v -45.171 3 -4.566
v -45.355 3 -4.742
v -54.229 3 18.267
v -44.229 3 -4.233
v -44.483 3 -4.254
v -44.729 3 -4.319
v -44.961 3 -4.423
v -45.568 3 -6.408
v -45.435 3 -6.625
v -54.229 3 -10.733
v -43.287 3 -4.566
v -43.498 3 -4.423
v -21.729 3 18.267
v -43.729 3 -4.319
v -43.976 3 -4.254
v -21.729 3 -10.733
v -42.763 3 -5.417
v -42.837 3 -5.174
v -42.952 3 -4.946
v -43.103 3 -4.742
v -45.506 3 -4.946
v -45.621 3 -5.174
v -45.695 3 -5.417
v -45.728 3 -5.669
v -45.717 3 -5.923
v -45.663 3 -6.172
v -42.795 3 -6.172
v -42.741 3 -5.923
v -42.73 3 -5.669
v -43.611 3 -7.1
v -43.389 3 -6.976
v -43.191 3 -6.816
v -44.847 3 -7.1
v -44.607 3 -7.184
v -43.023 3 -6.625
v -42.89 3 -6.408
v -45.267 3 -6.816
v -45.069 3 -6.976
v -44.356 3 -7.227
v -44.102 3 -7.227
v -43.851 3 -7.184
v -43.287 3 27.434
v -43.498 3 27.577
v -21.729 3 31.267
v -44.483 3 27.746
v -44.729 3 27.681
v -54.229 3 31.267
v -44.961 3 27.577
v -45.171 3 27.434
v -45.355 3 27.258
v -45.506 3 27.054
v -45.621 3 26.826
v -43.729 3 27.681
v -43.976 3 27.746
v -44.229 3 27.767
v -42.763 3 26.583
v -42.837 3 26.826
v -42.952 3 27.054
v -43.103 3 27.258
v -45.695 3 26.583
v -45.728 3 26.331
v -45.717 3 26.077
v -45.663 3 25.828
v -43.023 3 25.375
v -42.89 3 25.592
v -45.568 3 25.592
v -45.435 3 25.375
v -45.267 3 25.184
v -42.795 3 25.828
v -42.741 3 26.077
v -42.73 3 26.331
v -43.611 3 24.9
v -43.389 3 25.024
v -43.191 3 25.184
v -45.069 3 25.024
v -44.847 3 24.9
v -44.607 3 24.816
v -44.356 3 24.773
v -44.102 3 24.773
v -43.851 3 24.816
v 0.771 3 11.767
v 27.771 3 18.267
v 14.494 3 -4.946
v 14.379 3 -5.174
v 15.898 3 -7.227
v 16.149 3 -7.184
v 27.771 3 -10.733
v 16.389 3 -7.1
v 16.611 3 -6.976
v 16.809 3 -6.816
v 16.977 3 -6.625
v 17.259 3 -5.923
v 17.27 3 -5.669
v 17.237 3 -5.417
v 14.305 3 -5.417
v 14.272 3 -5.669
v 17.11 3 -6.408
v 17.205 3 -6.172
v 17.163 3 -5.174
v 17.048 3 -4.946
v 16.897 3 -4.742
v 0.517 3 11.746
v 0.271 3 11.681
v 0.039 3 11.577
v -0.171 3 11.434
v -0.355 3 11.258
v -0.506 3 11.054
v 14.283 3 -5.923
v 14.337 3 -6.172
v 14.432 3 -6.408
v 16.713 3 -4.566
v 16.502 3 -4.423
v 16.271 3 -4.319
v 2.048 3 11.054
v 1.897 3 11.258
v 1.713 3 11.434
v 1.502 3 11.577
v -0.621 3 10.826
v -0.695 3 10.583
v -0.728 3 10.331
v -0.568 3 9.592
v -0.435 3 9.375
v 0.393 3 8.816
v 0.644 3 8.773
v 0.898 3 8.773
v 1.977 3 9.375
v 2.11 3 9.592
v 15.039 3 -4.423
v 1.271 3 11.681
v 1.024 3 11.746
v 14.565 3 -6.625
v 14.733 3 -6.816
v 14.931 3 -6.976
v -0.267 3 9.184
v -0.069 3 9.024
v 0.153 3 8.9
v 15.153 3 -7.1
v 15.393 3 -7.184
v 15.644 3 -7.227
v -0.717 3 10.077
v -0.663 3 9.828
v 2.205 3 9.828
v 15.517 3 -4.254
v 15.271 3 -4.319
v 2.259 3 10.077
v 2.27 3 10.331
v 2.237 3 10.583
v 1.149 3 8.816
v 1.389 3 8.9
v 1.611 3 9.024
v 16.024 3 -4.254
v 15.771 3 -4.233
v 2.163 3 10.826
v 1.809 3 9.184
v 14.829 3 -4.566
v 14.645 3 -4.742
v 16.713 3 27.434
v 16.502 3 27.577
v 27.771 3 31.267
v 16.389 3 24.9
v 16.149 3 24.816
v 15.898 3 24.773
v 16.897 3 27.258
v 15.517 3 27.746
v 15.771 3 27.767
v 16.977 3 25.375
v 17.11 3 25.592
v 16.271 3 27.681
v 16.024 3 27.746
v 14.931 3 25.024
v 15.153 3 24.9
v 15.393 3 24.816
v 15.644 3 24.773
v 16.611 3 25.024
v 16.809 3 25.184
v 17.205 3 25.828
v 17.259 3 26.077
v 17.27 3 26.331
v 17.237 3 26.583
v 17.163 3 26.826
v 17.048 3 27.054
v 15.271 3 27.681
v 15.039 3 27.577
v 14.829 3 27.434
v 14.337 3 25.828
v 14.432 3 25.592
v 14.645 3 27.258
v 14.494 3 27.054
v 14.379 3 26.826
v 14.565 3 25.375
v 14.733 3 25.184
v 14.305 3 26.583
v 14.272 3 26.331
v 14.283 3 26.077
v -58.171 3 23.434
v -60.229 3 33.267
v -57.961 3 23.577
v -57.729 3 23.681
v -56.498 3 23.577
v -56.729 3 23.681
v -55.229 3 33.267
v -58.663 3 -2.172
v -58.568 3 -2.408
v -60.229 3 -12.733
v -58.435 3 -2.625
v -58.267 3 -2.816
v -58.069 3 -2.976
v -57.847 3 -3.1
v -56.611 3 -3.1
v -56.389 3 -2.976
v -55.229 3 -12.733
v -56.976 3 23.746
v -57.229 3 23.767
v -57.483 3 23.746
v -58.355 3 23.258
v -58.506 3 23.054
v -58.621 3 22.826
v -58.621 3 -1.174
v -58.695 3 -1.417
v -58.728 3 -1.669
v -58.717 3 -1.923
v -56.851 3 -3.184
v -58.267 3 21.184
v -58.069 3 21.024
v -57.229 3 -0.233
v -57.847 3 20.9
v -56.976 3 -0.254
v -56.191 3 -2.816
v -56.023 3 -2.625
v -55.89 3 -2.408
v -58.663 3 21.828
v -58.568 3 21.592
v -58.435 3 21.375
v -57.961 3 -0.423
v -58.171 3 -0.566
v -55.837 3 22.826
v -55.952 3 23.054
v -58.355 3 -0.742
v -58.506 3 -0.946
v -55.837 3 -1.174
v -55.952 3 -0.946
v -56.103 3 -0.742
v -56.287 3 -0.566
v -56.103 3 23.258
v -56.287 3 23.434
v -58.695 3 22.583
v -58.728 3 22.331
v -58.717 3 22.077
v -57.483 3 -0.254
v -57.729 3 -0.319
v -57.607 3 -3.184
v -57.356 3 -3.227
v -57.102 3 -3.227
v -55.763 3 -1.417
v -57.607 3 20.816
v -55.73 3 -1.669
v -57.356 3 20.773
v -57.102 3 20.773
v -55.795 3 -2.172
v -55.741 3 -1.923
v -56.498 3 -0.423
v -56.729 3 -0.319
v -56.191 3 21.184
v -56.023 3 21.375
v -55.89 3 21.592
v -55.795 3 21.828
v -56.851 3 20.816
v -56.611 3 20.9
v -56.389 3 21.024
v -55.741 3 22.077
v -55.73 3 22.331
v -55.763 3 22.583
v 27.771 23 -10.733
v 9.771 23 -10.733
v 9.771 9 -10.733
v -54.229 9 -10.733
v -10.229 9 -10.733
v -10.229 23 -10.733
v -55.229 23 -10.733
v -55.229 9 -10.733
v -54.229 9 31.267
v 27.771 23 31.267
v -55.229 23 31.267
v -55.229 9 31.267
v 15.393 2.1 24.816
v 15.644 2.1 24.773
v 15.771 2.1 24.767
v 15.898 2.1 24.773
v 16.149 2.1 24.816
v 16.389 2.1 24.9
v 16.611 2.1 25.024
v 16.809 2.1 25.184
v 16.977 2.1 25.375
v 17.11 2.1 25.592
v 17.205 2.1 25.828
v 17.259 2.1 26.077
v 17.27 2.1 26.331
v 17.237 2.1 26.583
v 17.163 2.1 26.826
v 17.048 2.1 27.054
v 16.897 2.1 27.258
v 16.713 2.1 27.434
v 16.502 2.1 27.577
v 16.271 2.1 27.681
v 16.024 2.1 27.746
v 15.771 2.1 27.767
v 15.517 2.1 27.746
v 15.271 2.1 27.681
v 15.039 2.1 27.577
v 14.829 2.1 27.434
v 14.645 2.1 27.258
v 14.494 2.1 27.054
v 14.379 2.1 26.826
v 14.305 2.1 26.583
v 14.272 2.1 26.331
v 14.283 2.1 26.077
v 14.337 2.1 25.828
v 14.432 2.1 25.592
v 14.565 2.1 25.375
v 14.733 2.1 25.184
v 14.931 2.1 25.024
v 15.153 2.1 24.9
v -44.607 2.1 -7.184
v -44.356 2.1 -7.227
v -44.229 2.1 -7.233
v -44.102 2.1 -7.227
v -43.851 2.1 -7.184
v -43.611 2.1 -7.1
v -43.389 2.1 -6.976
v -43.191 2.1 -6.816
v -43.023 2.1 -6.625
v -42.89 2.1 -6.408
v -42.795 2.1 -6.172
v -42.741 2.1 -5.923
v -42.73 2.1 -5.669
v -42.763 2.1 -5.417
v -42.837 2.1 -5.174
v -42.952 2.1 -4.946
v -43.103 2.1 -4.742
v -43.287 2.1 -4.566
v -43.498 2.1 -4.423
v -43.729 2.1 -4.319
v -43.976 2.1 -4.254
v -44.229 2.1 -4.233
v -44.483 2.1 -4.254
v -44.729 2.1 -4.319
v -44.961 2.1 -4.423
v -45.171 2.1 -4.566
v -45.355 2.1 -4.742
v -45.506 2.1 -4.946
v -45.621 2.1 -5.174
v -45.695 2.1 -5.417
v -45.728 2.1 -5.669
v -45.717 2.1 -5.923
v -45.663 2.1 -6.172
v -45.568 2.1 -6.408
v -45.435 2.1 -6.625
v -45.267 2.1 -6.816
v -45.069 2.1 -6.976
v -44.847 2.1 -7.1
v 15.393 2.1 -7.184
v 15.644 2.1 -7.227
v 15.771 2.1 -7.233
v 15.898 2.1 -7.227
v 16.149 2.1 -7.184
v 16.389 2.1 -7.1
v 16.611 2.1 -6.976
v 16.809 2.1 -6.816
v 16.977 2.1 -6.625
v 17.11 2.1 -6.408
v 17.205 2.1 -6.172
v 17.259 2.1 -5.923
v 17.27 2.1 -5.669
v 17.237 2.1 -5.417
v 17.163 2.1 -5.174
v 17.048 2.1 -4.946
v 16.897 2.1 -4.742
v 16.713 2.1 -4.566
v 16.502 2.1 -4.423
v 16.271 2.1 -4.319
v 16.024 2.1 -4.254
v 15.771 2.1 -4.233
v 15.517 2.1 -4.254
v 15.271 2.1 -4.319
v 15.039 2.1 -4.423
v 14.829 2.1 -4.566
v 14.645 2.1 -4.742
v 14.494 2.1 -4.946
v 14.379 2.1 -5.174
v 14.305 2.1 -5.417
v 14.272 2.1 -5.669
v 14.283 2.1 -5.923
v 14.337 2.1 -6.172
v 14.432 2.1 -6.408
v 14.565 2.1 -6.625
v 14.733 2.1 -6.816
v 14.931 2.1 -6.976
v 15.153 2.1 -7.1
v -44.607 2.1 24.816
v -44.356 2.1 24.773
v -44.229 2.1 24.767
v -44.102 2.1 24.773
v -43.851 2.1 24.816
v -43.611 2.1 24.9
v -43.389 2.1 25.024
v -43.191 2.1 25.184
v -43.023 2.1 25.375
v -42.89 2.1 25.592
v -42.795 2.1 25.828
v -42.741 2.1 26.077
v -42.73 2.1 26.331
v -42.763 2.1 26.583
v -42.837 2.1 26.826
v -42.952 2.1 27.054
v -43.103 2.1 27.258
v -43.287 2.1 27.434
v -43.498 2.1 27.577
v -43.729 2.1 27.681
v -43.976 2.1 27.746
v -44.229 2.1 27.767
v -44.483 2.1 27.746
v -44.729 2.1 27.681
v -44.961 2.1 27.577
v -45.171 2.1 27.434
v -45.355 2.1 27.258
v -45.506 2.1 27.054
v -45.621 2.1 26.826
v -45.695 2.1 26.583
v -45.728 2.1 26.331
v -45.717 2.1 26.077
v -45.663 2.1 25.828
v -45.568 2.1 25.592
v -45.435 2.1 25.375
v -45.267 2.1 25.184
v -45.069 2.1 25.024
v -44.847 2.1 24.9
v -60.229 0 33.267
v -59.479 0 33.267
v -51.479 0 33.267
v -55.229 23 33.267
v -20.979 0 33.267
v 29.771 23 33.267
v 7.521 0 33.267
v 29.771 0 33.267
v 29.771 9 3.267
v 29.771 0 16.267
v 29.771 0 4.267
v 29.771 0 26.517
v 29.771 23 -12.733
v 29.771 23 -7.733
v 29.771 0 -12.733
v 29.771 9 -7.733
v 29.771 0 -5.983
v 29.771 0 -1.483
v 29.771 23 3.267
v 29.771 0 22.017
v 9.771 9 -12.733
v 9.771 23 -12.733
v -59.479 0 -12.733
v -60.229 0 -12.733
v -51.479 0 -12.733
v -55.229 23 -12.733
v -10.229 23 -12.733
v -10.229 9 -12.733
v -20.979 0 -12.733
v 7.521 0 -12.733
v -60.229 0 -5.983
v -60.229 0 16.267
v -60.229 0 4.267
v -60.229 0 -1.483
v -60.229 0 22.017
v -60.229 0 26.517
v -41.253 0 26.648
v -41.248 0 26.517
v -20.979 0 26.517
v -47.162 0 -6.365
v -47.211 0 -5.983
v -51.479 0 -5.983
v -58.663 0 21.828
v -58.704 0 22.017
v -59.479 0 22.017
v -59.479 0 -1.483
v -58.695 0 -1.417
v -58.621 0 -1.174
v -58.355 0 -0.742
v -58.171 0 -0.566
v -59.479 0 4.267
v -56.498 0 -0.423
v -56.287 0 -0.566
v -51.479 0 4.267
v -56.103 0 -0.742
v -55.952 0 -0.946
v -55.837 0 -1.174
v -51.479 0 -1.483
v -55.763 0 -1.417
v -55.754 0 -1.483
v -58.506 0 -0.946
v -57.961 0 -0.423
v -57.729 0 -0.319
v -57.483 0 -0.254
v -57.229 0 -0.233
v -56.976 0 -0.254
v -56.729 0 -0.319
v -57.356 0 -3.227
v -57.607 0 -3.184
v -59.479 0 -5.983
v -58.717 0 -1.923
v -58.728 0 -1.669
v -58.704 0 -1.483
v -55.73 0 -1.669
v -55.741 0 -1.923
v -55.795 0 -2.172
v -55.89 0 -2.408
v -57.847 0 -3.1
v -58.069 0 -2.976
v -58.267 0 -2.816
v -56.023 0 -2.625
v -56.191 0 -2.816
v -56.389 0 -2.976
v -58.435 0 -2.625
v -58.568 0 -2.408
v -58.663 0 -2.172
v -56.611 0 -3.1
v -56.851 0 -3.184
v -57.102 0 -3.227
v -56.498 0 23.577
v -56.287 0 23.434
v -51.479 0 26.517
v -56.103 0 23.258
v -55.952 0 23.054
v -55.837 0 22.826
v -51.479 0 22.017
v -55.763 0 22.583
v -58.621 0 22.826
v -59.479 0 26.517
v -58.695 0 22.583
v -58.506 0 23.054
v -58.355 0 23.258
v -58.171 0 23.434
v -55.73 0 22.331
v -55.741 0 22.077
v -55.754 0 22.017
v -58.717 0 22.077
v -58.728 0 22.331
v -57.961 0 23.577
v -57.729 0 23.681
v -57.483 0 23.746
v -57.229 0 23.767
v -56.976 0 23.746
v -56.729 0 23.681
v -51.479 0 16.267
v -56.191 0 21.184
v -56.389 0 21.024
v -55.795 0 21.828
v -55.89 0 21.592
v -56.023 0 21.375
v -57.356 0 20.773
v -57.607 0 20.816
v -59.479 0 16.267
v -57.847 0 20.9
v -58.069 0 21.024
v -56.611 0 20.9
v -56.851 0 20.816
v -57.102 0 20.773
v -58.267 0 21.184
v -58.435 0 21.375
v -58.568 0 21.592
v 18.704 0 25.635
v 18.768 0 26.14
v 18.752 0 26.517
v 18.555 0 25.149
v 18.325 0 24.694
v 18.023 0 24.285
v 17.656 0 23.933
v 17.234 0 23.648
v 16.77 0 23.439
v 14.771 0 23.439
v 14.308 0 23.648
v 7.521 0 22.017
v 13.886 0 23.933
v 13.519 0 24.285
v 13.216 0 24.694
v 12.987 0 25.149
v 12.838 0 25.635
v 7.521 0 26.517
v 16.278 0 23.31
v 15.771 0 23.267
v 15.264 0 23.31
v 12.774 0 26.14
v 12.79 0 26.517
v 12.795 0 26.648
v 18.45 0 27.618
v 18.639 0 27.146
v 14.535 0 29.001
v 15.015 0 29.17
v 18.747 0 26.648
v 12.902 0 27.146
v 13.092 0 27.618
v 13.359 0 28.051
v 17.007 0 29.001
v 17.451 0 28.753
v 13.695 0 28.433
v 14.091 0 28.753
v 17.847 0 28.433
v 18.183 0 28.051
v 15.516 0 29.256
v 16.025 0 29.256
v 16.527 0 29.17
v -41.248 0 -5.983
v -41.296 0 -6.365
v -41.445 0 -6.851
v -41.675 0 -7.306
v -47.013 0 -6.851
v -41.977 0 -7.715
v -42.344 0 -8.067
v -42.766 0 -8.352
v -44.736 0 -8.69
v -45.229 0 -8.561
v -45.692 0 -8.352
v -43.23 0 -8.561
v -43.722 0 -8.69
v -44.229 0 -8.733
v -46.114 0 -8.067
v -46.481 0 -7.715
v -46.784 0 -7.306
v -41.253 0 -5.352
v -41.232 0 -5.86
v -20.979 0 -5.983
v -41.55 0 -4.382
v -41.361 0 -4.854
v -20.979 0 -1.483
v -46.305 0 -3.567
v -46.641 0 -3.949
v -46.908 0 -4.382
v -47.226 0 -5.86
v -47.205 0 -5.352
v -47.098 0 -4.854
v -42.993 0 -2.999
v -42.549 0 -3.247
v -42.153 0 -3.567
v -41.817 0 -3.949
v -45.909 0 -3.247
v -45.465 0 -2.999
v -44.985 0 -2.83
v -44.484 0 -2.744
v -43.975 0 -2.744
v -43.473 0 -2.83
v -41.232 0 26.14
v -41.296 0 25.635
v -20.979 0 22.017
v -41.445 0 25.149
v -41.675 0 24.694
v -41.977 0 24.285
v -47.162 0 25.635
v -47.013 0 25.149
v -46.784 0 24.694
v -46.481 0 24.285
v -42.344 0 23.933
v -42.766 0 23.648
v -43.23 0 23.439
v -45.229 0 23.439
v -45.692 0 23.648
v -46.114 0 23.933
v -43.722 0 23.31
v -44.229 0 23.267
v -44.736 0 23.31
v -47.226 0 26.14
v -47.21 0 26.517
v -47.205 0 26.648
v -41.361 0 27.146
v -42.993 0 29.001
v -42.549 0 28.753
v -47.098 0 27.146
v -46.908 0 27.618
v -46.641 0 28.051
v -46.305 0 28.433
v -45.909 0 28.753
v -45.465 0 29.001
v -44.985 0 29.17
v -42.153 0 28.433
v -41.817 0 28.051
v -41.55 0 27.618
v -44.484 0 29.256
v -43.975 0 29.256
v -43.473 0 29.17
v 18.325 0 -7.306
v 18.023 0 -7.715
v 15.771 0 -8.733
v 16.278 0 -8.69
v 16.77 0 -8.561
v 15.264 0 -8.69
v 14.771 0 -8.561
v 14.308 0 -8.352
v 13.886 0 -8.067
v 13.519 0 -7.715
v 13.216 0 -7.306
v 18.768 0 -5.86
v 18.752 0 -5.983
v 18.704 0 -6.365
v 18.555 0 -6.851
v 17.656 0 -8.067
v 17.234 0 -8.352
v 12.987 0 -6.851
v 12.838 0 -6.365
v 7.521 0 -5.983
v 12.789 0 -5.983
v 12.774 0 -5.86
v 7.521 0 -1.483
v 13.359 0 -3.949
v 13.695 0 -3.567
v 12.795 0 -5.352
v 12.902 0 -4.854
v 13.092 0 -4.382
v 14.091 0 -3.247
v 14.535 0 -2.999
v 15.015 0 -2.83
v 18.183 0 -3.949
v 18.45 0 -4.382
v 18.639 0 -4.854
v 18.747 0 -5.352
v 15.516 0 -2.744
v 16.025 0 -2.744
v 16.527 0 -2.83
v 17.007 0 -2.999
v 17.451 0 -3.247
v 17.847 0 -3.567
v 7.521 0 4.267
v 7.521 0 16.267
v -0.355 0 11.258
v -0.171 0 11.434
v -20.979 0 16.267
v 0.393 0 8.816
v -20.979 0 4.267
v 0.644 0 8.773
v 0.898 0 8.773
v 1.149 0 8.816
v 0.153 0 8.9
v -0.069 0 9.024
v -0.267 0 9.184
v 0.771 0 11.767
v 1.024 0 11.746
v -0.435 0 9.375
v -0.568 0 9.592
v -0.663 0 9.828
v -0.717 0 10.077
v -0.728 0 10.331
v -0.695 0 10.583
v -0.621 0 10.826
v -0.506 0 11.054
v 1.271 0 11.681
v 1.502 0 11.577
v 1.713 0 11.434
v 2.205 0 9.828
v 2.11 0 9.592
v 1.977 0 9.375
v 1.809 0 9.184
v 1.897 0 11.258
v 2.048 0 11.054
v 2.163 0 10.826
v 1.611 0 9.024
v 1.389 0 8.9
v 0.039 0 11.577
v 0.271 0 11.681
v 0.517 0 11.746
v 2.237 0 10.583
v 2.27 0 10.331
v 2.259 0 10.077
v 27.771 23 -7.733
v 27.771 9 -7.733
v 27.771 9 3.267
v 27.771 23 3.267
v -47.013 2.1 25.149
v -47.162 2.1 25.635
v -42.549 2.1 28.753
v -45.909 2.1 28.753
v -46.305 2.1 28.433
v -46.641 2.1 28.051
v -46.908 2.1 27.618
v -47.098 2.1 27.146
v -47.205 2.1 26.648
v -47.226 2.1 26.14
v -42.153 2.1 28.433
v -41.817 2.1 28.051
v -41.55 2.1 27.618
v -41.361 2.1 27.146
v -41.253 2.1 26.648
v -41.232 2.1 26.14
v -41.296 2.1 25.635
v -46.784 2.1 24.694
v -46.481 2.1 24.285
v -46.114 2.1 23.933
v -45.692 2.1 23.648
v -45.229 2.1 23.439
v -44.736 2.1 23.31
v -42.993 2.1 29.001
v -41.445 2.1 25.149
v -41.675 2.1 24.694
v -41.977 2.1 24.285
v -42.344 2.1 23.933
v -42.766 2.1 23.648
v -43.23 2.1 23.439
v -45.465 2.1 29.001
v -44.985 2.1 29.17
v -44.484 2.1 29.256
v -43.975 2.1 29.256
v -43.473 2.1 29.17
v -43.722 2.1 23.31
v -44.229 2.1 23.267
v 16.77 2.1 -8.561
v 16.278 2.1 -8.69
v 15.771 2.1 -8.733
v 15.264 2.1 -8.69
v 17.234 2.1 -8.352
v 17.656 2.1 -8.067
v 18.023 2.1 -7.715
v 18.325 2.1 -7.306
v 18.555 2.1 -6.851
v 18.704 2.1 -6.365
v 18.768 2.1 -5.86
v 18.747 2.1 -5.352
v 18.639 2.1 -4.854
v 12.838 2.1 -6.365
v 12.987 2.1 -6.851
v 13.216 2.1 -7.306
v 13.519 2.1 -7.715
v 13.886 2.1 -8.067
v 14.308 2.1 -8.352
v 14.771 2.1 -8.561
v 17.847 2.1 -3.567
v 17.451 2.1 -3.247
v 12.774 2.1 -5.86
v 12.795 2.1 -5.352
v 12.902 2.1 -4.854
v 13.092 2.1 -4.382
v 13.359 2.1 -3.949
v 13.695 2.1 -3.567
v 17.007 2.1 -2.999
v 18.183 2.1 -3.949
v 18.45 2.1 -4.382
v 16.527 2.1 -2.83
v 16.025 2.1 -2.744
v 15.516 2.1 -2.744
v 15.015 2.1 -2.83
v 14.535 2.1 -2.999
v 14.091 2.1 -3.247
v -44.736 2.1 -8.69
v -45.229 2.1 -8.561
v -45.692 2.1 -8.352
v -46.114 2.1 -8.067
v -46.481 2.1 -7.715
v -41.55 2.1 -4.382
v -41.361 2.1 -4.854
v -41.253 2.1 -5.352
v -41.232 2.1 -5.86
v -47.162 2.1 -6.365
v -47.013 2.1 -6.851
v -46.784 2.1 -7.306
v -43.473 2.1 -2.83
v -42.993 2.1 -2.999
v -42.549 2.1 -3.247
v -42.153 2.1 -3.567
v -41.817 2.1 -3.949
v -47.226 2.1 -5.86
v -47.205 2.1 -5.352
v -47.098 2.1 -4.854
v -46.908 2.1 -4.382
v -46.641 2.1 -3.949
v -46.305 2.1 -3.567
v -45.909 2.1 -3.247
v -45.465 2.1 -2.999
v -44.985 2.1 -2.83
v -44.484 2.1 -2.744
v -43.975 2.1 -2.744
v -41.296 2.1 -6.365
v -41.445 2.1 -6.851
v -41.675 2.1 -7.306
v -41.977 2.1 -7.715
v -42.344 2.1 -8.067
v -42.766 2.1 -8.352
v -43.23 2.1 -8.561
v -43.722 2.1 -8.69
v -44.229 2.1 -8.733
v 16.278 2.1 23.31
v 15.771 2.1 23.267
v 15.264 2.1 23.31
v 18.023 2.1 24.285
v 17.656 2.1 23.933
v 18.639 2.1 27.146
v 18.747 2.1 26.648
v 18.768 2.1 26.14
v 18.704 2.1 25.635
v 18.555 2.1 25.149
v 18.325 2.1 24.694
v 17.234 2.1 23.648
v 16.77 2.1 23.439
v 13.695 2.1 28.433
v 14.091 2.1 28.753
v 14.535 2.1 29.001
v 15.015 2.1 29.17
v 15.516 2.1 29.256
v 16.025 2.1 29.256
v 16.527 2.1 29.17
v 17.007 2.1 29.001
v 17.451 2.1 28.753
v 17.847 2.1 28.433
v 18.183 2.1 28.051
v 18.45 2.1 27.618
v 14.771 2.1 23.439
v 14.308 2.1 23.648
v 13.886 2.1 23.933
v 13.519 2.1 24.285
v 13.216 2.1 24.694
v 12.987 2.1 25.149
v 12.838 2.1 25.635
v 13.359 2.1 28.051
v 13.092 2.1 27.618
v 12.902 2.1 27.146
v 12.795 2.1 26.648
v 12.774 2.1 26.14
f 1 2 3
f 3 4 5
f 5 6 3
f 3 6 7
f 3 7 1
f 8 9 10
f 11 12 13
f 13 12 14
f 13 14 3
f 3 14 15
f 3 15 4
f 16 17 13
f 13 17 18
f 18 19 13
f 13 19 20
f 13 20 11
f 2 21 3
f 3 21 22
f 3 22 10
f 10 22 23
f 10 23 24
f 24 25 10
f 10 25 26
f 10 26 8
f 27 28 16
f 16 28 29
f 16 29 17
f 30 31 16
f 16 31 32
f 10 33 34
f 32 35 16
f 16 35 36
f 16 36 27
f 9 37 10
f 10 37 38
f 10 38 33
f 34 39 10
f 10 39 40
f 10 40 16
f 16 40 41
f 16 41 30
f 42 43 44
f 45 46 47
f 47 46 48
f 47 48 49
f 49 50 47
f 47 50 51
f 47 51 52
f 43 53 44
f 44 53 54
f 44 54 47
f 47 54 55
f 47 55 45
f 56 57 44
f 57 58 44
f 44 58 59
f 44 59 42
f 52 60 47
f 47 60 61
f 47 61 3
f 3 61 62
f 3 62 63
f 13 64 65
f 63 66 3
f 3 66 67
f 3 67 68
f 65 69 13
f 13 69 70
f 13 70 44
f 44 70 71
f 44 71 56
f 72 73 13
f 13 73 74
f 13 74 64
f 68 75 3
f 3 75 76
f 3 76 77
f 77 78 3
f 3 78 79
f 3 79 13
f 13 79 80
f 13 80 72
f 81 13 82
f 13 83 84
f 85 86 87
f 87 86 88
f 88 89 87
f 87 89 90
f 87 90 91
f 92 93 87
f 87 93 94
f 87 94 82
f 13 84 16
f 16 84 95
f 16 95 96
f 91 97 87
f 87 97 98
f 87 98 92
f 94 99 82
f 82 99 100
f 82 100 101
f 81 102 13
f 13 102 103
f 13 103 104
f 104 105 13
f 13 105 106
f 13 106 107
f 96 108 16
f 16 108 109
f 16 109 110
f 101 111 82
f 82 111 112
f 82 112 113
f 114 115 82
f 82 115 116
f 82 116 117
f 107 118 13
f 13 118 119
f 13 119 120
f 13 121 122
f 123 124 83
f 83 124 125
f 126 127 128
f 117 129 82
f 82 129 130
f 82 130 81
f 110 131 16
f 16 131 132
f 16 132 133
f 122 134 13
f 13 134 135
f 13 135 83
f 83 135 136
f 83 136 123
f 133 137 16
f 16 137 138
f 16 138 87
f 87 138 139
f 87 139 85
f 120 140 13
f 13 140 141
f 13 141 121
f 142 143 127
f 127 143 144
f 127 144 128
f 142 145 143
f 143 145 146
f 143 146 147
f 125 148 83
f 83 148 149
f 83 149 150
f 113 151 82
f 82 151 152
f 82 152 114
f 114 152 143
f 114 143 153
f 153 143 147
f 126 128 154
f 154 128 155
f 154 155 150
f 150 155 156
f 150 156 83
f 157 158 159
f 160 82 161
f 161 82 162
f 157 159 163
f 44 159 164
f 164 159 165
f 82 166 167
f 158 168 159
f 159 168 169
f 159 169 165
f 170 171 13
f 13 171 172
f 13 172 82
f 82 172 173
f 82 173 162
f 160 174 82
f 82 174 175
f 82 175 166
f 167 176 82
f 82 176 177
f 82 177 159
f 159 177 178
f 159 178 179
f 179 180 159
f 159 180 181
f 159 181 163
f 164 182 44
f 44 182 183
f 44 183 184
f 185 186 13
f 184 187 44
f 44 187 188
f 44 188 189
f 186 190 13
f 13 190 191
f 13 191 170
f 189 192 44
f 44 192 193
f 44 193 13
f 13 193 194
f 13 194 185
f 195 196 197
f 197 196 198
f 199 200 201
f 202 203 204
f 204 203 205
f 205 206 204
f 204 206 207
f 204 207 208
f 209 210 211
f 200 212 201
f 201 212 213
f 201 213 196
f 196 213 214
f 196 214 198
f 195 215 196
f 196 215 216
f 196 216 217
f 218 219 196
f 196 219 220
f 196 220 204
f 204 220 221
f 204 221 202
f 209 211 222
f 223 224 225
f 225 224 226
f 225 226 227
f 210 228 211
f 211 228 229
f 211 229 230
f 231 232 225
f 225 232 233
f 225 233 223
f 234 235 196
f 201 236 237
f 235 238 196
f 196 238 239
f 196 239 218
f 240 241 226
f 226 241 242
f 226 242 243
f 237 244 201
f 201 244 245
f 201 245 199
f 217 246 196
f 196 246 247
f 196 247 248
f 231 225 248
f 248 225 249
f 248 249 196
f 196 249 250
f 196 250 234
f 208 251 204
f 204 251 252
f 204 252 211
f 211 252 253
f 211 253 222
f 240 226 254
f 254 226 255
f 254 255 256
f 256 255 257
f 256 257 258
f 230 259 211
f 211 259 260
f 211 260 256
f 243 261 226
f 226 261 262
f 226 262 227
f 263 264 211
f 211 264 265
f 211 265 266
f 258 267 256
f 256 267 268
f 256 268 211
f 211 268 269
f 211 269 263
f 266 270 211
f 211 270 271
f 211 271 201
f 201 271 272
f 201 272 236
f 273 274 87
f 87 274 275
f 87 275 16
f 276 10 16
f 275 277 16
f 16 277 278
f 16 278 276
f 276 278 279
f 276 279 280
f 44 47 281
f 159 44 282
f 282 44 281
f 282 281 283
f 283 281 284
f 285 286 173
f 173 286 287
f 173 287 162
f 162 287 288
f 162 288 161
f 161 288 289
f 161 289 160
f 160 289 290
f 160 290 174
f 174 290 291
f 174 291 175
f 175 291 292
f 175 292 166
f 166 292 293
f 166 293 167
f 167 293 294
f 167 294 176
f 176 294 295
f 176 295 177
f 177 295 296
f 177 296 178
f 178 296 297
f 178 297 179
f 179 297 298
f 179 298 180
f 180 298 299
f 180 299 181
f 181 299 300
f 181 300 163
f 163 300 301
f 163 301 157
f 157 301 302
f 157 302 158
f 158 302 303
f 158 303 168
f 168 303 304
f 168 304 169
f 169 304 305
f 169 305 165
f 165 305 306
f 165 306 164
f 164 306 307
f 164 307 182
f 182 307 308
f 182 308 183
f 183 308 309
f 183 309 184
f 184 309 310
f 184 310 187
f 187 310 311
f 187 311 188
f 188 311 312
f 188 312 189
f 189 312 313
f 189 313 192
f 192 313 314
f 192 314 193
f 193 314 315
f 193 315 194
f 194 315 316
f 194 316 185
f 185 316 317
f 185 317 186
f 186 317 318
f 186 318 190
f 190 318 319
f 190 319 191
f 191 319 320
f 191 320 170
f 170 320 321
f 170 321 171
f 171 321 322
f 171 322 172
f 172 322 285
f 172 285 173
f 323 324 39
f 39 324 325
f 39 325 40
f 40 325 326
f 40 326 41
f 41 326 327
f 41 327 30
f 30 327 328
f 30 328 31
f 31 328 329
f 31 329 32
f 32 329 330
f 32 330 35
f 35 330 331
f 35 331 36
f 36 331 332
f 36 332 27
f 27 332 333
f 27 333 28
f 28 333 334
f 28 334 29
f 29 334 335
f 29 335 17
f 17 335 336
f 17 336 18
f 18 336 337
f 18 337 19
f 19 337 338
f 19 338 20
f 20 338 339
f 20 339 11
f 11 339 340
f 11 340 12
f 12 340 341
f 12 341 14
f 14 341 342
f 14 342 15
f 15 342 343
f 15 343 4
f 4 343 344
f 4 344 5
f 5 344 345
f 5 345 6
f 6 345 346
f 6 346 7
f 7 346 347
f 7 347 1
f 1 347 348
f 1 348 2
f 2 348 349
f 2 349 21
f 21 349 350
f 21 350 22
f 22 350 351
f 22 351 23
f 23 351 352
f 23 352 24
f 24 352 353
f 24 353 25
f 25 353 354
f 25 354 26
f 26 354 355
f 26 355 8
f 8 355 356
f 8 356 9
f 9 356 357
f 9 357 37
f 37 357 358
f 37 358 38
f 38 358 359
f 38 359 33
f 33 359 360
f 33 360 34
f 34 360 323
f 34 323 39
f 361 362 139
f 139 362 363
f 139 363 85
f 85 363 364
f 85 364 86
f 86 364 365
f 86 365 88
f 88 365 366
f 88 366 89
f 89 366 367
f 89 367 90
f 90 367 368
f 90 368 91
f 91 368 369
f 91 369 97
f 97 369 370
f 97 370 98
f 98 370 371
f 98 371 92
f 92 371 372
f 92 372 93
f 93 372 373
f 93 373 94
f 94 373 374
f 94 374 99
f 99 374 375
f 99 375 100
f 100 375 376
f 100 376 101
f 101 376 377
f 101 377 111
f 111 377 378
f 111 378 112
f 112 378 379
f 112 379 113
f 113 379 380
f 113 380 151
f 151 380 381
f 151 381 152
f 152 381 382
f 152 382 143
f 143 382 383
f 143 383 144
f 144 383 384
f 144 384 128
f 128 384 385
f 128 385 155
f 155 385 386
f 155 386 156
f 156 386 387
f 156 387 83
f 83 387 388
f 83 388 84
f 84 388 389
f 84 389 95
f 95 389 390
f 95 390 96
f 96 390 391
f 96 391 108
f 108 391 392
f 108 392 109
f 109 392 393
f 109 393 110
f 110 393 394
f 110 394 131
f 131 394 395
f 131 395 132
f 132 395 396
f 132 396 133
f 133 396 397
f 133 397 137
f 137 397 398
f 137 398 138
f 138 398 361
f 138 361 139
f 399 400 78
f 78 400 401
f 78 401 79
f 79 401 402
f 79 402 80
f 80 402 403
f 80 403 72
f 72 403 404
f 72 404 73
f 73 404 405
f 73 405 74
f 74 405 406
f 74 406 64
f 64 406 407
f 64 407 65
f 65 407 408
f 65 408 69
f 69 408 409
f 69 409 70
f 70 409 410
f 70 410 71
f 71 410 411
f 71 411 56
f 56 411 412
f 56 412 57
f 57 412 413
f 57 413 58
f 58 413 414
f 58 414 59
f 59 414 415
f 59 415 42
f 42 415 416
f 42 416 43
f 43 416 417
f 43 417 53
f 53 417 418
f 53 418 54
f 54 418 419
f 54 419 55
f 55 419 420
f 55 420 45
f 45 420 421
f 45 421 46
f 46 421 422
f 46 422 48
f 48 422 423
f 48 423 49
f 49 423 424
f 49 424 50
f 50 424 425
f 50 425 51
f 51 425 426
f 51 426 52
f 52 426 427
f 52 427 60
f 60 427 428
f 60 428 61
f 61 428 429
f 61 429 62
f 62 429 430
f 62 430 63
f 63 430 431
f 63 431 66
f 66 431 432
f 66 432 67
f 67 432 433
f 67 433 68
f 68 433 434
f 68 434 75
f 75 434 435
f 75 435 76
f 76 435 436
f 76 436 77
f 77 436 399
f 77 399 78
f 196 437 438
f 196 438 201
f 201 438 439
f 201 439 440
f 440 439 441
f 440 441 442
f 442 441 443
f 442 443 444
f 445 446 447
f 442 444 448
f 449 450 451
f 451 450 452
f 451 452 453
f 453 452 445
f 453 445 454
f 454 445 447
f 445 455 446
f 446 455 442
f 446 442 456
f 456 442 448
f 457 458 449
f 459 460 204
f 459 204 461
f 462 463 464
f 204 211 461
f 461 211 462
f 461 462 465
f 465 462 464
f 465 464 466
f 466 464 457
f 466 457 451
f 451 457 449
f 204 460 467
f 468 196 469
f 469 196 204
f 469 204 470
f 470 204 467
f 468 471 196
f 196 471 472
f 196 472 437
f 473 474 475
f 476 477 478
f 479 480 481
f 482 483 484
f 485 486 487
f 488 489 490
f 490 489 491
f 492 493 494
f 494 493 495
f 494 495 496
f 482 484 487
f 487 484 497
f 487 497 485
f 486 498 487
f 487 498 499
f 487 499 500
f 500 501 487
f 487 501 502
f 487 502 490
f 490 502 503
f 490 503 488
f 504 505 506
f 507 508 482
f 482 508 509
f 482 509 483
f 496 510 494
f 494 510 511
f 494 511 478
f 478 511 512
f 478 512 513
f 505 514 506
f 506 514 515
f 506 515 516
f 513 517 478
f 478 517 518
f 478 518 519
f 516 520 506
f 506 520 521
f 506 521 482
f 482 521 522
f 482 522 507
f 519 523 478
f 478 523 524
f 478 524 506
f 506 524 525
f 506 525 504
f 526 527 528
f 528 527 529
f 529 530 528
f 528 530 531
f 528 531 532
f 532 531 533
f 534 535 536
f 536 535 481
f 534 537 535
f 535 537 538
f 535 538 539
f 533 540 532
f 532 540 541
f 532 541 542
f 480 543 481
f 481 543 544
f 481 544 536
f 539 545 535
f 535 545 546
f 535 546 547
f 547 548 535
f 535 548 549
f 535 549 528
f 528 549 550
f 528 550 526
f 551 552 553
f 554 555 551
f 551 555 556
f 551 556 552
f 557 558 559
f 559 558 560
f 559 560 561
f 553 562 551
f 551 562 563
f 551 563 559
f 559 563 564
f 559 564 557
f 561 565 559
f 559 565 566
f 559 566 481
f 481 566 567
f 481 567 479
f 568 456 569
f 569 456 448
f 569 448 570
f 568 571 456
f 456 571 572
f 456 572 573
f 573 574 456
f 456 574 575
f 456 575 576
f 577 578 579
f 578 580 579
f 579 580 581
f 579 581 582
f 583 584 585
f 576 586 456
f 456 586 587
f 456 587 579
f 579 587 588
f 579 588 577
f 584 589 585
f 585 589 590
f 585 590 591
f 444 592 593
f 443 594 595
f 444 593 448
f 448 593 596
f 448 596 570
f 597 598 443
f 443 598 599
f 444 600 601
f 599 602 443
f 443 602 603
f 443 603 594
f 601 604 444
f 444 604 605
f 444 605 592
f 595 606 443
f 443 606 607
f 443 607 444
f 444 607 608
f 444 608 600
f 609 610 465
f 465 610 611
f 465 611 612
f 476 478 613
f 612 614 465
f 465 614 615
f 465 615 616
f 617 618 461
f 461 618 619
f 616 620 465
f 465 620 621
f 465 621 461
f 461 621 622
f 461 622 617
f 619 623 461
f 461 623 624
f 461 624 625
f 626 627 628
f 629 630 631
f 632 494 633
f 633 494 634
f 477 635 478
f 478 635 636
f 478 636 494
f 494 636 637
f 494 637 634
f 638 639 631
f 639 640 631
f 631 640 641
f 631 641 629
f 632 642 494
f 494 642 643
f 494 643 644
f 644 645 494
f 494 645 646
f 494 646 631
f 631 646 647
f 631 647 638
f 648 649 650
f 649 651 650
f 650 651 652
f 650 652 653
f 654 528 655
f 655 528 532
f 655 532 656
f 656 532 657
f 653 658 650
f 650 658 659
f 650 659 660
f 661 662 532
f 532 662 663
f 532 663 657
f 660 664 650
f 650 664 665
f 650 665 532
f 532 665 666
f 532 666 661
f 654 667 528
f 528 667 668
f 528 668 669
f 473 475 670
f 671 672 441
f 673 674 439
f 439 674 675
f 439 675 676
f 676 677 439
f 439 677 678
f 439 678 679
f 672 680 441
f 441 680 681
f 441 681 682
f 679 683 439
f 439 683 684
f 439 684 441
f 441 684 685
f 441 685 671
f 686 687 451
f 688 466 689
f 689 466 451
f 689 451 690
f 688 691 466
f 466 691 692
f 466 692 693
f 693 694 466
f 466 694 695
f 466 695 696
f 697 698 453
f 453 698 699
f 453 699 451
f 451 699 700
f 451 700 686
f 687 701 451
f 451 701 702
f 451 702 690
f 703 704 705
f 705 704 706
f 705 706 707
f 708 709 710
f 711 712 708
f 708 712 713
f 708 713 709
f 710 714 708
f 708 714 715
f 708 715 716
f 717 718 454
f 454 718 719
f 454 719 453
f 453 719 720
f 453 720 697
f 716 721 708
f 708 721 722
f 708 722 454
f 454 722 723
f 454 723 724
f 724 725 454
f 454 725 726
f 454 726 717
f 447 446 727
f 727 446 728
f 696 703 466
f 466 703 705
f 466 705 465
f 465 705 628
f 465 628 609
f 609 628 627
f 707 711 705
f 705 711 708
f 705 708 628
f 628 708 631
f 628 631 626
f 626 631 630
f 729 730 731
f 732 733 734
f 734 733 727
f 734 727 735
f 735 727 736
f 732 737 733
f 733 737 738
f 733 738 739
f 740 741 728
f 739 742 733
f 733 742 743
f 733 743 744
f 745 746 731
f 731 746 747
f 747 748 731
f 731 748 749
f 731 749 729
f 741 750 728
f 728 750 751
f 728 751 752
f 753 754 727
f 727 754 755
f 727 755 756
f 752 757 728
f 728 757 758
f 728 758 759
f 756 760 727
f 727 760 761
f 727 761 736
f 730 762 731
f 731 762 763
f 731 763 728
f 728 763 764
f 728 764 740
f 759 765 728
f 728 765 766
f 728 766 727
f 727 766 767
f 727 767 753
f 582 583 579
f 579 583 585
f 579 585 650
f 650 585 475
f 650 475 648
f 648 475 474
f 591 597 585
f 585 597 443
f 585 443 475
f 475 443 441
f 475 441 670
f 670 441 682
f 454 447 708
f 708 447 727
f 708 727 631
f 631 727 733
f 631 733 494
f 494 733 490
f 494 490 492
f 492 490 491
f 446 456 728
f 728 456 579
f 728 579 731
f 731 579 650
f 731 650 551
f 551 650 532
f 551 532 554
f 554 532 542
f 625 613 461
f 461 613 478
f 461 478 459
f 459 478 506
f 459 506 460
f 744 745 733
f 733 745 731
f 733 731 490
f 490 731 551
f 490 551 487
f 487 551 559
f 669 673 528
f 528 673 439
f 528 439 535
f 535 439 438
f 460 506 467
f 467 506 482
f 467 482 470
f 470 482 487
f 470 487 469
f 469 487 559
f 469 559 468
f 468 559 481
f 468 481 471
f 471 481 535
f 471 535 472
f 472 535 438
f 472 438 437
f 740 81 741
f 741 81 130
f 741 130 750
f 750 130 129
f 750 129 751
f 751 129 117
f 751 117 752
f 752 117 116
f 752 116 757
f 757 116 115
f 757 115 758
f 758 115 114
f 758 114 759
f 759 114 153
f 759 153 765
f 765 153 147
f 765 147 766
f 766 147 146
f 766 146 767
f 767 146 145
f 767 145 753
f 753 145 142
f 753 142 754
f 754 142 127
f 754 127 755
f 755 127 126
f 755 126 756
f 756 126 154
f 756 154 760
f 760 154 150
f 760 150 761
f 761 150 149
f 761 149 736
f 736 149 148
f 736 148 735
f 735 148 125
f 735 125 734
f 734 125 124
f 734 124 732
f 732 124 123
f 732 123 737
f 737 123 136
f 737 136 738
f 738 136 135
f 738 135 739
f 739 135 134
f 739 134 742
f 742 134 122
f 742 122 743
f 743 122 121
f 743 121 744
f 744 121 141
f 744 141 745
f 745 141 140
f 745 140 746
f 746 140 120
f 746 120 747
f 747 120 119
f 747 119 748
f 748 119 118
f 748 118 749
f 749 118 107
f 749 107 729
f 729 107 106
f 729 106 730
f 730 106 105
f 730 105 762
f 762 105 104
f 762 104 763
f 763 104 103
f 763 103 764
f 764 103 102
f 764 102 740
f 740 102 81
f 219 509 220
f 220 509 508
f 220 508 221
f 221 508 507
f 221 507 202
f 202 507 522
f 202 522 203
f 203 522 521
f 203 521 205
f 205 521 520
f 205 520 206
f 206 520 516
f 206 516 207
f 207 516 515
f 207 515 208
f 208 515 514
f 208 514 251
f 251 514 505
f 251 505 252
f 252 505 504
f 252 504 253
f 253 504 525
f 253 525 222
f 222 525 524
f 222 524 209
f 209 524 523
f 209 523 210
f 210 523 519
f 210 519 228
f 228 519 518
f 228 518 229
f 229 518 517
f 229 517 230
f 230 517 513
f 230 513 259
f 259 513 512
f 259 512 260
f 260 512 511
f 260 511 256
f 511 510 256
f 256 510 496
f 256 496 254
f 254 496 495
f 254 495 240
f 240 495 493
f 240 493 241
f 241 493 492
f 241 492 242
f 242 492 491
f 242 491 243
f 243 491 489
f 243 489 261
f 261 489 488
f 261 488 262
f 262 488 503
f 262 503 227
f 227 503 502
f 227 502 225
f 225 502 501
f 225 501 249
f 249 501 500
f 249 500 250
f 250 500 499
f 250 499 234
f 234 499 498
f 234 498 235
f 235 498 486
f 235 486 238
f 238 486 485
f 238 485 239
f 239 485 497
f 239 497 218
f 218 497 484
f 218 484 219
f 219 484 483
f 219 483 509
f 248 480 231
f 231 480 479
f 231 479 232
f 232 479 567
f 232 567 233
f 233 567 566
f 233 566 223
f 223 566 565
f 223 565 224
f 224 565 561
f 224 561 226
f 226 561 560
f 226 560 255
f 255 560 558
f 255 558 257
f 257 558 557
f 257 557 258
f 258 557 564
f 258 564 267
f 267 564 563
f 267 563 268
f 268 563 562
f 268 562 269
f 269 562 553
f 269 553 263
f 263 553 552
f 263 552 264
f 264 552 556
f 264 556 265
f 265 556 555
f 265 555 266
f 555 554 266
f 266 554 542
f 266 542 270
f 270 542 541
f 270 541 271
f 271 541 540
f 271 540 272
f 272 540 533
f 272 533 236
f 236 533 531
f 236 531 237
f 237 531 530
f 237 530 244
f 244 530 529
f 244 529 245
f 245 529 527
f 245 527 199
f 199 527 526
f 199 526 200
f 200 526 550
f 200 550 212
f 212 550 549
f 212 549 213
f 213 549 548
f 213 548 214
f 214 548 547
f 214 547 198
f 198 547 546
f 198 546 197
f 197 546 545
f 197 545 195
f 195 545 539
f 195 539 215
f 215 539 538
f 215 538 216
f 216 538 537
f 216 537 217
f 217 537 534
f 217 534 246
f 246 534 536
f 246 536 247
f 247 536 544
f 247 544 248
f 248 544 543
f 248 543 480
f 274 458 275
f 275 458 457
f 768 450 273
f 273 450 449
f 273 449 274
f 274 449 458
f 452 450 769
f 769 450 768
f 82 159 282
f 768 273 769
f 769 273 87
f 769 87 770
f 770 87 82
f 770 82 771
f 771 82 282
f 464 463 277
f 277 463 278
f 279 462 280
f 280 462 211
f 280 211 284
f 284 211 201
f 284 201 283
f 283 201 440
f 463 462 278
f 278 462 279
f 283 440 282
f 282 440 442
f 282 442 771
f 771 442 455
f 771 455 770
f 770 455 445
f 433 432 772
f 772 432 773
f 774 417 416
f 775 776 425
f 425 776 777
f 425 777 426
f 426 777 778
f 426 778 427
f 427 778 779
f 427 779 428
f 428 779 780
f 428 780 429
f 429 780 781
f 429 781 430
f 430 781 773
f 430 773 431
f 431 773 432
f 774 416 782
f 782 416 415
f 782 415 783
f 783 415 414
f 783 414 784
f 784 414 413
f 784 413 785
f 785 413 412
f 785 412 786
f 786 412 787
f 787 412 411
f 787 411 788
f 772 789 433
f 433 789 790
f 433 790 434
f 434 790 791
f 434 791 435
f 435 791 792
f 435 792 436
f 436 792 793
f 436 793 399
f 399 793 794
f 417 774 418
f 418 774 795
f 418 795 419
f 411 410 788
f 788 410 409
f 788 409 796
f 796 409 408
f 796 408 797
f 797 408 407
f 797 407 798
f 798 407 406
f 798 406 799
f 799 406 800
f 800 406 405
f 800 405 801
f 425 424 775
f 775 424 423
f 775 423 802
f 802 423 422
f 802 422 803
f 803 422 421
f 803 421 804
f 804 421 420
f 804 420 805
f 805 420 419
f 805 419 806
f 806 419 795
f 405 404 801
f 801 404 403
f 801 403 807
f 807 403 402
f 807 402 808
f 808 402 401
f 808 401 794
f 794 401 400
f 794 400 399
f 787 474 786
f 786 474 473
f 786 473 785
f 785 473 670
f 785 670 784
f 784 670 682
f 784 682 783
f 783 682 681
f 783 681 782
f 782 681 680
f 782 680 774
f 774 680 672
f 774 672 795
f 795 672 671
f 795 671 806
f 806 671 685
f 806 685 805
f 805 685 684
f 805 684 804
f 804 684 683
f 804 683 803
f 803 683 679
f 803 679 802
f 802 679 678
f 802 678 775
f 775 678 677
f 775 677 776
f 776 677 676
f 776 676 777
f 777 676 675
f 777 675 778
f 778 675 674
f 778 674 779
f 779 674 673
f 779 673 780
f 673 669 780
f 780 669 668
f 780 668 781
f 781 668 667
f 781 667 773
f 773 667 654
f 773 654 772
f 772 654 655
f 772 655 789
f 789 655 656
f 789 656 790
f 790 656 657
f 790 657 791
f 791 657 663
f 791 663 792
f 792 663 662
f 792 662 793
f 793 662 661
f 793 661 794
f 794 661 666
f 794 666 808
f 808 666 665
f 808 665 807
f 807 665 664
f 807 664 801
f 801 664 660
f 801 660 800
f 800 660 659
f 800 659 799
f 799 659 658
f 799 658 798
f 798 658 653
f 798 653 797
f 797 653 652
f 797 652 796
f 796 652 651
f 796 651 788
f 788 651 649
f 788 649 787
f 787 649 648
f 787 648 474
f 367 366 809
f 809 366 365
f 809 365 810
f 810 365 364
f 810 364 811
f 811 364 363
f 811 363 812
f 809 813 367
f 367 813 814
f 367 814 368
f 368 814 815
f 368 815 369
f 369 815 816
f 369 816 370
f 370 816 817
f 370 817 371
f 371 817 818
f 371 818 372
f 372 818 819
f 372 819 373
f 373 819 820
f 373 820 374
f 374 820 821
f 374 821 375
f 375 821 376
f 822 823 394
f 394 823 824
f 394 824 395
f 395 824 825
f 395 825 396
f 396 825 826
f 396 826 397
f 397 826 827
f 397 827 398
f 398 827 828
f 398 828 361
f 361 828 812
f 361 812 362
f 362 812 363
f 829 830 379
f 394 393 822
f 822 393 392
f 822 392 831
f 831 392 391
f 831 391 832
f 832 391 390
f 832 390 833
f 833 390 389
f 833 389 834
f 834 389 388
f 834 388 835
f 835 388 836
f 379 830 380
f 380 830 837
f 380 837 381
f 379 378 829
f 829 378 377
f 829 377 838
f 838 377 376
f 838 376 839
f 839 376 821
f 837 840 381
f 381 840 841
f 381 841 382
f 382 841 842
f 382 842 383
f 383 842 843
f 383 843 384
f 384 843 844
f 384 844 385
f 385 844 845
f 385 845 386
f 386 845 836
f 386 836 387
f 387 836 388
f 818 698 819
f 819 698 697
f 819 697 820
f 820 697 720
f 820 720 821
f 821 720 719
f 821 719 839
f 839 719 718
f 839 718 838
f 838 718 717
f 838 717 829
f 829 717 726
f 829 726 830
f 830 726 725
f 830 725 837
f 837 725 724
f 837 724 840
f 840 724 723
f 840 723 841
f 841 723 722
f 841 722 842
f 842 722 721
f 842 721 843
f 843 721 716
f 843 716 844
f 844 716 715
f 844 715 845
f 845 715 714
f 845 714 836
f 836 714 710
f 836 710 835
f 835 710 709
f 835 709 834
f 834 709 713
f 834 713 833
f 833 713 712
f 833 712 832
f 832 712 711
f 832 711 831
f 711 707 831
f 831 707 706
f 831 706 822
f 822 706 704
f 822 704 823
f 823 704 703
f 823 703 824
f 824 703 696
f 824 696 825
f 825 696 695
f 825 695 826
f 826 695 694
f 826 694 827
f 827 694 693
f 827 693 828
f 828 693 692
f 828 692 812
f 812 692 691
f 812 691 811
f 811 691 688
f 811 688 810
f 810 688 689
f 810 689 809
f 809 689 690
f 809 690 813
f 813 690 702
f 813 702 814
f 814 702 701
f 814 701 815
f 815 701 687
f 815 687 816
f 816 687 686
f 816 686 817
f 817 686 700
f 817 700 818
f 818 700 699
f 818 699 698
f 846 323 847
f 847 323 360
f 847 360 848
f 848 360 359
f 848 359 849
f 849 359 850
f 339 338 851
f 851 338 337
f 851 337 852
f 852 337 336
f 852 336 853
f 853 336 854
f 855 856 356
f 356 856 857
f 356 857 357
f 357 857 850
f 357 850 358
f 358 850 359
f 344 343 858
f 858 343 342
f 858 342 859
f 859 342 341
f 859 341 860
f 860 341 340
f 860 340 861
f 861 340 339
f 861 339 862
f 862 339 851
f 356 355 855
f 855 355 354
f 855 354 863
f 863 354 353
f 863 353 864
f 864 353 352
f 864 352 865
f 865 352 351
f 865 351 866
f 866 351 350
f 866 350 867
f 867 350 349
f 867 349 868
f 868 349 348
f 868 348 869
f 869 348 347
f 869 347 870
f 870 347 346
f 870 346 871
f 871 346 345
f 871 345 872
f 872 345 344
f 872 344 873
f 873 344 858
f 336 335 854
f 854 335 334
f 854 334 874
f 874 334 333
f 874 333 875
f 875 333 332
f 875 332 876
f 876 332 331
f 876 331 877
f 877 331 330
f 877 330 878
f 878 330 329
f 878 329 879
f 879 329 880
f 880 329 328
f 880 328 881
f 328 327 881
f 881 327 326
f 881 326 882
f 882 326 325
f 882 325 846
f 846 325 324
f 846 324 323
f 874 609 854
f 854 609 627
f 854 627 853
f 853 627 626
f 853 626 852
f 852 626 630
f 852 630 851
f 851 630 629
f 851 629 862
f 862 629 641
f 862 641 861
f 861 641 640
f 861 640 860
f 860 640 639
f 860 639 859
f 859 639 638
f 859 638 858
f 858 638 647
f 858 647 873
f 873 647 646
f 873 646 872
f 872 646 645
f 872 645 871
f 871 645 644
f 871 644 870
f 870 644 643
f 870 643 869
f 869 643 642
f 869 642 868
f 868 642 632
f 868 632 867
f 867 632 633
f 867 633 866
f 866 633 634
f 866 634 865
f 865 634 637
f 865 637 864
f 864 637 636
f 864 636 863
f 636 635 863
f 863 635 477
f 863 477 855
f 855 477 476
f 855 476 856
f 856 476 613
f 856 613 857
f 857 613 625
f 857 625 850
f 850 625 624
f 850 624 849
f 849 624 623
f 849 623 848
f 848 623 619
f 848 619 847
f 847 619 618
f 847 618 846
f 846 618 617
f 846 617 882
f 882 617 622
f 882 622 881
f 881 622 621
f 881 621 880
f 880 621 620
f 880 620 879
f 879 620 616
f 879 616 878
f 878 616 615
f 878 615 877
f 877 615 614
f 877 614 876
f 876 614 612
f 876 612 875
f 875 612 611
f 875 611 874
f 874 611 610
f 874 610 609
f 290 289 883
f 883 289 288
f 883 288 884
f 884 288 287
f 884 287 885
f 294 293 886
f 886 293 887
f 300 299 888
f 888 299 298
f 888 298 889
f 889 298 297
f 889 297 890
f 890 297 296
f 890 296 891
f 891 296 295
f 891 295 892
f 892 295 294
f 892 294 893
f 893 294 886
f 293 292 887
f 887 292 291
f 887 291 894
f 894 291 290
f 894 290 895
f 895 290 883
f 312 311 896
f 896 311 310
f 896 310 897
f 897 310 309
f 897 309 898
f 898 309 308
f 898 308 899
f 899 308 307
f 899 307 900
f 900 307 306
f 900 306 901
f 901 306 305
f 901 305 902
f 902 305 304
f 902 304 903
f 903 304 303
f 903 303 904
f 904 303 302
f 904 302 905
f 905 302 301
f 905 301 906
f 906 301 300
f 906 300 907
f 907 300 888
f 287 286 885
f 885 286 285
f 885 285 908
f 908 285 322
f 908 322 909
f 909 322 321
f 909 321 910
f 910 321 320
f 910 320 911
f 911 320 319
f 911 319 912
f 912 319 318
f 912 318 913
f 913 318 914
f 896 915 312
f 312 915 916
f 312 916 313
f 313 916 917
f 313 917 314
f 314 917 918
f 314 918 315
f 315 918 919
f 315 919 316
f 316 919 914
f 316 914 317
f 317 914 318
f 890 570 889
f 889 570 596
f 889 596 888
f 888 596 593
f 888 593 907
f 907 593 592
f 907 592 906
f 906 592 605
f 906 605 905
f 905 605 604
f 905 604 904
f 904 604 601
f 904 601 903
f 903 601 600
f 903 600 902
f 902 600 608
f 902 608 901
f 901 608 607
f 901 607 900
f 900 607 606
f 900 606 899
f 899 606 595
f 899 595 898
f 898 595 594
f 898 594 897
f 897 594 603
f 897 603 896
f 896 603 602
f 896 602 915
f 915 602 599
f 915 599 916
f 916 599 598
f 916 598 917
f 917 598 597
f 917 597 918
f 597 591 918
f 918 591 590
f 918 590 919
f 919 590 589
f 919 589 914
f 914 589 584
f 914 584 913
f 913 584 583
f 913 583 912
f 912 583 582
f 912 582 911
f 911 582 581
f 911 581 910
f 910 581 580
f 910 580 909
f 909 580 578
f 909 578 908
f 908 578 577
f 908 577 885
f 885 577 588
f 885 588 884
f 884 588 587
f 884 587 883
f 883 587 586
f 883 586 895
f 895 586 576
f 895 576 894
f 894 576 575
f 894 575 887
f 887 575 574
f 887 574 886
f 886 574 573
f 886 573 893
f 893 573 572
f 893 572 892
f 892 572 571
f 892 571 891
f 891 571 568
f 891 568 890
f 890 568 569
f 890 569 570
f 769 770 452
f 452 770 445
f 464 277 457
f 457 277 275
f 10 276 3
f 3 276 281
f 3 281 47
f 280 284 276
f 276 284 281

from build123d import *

# Parameters (mm, degrees)
SKETCH1_W           = 90
SKETCH1_H           = 46
BOSS_EXTRUDE1_DEPTH = 3
SKETCH5_R           = 1.5
CUT_EXTRUDE3_DEPTH  = 4
SKETCH6_W           = 2
SKETCH6_H           = 28
SKETCH6_W_2         = 60
SKETCH6_H_2         = 2
SKETCH6_H_3         = 3
SKETCH6_W_3         = 45
BOSS_EXTRUDE3_DEPTH = 20
SKETCH7_R           = 1.5
CUT_EXTRUDE4_DEPTH  = 4
SKETCH8_R           = 3
CUT_EXTRUDE5_DEPTH  = 2.1
SKETCH9_W           = 2
SKETCH9_H           = 11
SKETCH9_W_2         = 20
SKETCH9_H_2         = 2
SKETCH9_W_3         = 1
SKETCH9_H_3         = 42
BOSS_EXTRUDE4_DEPTH = 6


with BuildPart() as part:
    # Sketch1 → Boss-Extrude1 (new body)
    with BuildSketch(Plane(origin=(0, 0, 0), x_dir=(1, 0, 0), z_dir=(0, 1, 0))):
        with Locations((-15.229105331, -10.267137121)):
            Rectangle(SKETCH1_W, SKETCH1_H)
    extrude(amount=BOSS_EXTRUDE1_DEPTH)

    # Sketch5 → Cut-Extrude3 (cut, through all)
    with BuildSketch(Plane(origin=(0, 3, 0), x_dir=(1, 0, 0), z_dir=(0, 1, 0))):
        with Locations((-57.229105331, -22.267137121)):
            Circle(SKETCH5_R)
        with Locations((-57.229105331, 1.732862879)):
            Circle(SKETCH5_R)
        with Locations((0.770894669, -10.267137121)):
            Circle(SKETCH5_R)
    extrude(amount=-CUT_EXTRUDE3_DEPTH, mode=Mode.SUBTRACT)

    # Sketch6 → Boss-Extrude3 (add)
    with BuildSketch(Plane(origin=(0, 3, 0), x_dir=(1, 0, 0), z_dir=(0, 1, 0))):
        with Locations((28.770894669, -17.267137121)):
            Rectangle(SKETCH6_W, SKETCH6_H)
        Polygon((29.770894669, -31.267137121), (27.770894669, -31.267137121), (4.770894669, -31.267137121), (4.770894669, -33.267137121), (29.770894669, -33.267137121), align=None)
        with Locations((-25.229105331, -32.267137121)):
            Rectangle(SKETCH6_W_2, SKETCH6_H_2)
        with Locations((28.770894669, 9.232862879)):
            Rectangle(SKETCH6_W, SKETCH6_H_3)
        Polygon((9.770894669, 10.732862879), (27.770894669, 10.732862879), (29.770894669, 10.732862879), (29.770894669, 12.732862879), (9.770894669, 12.732862879), align=None)
        with Locations((-32.729105331, 11.732862879)):
            Rectangle(SKETCH6_W_3, SKETCH6_H_2)
    extrude(amount=BOSS_EXTRUDE3_DEPTH)

    # Sketch7 → Cut-Extrude4 (cut, through all)
    with BuildSketch(Plane(origin=(0, 3, 0), x_dir=(1, 0, 0), z_dir=(0, 1, 0))):
        with Locations((15.770894669, -26.267137121)):
            Circle(SKETCH7_R)
        with Locations((-44.229105331, -26.267137121)):
            Circle(SKETCH7_R)
        with Locations((15.770894669, 5.732862879)):
            Circle(SKETCH7_R)
        with Locations((-44.229105331, 5.732862879)):
            Circle(SKETCH7_R)
    extrude(amount=-CUT_EXTRUDE4_DEPTH, mode=Mode.SUBTRACT)

    # Sketch8 → Cut-Extrude5 (cut)
    with BuildSketch(Plane(origin=(0, 0, 0), x_dir=(-1, 0, 0), z_dir=(0, -1, 0))):
        with Locations((-15.770894669, -26.267137121)):
            Circle(SKETCH8_R)
        with Locations((-15.770894669, 5.732862879)):
            Circle(SKETCH8_R)
        with Locations((44.229105331, -26.267137121)):
            Circle(SKETCH8_R)
        with Locations((44.229105331, 5.732862879)):
            Circle(SKETCH8_R)
    extrude(amount=-CUT_EXTRUDE5_DEPTH, mode=Mode.SUBTRACT)

    # Sketch9 → Boss-Extrude4 (add)
    with BuildSketch(Plane(origin=(0, 3, 0), x_dir=(1, 0, 0), z_dir=(0, 1, 0))):
        with Locations((28.770894669, 2.232862879)):
            Rectangle(SKETCH9_W, SKETCH9_H)
        with Locations((-0.229105331, 11.732862879)):
            Rectangle(SKETCH9_W_2, SKETCH9_H_2)
        with Locations((-54.729105331, -10.267137121)):
            Rectangle(SKETCH9_W_3, SKETCH9_H_3)
    extrude(amount=BOSS_EXTRUDE4_DEPTH)


solid = part.part
